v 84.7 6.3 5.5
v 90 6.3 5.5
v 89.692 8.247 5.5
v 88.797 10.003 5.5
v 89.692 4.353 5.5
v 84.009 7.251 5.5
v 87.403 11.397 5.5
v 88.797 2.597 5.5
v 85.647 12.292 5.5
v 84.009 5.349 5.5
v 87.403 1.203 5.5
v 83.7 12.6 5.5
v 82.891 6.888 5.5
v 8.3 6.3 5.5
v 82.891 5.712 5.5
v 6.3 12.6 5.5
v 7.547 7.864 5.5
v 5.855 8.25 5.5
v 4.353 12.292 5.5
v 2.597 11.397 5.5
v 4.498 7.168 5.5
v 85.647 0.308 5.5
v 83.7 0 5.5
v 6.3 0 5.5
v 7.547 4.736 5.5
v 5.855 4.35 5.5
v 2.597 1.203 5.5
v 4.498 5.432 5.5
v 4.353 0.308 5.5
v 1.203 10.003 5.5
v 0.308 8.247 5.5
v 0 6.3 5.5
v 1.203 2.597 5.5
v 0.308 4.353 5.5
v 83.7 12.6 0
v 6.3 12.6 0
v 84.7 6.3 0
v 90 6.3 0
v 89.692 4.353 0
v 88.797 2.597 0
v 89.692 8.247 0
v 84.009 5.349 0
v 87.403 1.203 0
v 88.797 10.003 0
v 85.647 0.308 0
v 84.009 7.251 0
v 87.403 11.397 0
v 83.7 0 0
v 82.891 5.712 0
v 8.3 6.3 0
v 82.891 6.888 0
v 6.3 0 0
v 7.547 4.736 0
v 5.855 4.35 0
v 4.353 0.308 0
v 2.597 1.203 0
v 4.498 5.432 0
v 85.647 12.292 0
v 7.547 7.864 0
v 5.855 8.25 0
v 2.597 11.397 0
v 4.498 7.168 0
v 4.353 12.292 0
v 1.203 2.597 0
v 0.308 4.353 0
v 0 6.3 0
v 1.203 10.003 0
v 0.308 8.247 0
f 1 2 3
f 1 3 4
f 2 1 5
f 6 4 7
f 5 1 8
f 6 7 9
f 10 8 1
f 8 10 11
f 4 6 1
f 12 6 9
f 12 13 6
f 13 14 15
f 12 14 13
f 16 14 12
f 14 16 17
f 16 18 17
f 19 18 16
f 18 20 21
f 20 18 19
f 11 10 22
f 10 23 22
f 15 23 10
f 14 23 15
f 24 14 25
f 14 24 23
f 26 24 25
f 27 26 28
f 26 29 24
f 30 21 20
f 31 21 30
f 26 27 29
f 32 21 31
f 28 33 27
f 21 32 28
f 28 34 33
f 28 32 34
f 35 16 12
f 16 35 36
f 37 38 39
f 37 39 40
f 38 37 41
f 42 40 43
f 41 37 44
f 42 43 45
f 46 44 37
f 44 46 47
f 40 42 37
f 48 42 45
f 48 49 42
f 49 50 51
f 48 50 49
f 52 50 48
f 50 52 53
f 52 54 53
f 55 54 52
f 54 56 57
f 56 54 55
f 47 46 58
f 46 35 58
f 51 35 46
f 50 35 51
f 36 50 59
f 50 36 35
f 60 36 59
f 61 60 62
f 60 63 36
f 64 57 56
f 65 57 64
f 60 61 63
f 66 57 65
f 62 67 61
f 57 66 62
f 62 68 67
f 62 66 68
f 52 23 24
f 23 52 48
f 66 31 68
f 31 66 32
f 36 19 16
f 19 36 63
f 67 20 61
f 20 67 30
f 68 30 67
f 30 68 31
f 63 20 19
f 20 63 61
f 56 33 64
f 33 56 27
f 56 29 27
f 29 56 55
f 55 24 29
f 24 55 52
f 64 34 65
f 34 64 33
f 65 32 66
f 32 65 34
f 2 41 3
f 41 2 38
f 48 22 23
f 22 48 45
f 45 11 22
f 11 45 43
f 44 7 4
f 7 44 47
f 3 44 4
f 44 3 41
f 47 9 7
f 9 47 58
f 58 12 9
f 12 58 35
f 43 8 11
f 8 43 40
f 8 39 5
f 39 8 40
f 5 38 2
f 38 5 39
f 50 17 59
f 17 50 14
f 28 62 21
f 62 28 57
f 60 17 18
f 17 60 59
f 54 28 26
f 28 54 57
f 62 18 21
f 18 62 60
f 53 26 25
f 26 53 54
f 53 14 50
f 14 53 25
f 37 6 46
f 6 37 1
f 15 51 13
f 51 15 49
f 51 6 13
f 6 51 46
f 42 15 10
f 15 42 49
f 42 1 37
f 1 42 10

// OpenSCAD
length = 90;
radius = 6.3;
circleorigin = 2;
circleend = 1;


difference(){
    
 union(){
translate([radius, 0, 0])
cube(size=[length- 2*radius, 
2*radius, 
5.5]);

translate ([radius, radius, 0])
cylinder(h = 5.5, 
r = radius);

translate ([length-radius, radius, 0])
cylinder(h = 5.5, 
r = radius);
 }




//Bigger hole
translate([radius, radius, -2.5])
cylinder (h= 10.5, r=circleorigin);

//Smaller hole
translate([length-radius, radius, -2.5])
cylinder (h= 10.5, r=circleend);
}
